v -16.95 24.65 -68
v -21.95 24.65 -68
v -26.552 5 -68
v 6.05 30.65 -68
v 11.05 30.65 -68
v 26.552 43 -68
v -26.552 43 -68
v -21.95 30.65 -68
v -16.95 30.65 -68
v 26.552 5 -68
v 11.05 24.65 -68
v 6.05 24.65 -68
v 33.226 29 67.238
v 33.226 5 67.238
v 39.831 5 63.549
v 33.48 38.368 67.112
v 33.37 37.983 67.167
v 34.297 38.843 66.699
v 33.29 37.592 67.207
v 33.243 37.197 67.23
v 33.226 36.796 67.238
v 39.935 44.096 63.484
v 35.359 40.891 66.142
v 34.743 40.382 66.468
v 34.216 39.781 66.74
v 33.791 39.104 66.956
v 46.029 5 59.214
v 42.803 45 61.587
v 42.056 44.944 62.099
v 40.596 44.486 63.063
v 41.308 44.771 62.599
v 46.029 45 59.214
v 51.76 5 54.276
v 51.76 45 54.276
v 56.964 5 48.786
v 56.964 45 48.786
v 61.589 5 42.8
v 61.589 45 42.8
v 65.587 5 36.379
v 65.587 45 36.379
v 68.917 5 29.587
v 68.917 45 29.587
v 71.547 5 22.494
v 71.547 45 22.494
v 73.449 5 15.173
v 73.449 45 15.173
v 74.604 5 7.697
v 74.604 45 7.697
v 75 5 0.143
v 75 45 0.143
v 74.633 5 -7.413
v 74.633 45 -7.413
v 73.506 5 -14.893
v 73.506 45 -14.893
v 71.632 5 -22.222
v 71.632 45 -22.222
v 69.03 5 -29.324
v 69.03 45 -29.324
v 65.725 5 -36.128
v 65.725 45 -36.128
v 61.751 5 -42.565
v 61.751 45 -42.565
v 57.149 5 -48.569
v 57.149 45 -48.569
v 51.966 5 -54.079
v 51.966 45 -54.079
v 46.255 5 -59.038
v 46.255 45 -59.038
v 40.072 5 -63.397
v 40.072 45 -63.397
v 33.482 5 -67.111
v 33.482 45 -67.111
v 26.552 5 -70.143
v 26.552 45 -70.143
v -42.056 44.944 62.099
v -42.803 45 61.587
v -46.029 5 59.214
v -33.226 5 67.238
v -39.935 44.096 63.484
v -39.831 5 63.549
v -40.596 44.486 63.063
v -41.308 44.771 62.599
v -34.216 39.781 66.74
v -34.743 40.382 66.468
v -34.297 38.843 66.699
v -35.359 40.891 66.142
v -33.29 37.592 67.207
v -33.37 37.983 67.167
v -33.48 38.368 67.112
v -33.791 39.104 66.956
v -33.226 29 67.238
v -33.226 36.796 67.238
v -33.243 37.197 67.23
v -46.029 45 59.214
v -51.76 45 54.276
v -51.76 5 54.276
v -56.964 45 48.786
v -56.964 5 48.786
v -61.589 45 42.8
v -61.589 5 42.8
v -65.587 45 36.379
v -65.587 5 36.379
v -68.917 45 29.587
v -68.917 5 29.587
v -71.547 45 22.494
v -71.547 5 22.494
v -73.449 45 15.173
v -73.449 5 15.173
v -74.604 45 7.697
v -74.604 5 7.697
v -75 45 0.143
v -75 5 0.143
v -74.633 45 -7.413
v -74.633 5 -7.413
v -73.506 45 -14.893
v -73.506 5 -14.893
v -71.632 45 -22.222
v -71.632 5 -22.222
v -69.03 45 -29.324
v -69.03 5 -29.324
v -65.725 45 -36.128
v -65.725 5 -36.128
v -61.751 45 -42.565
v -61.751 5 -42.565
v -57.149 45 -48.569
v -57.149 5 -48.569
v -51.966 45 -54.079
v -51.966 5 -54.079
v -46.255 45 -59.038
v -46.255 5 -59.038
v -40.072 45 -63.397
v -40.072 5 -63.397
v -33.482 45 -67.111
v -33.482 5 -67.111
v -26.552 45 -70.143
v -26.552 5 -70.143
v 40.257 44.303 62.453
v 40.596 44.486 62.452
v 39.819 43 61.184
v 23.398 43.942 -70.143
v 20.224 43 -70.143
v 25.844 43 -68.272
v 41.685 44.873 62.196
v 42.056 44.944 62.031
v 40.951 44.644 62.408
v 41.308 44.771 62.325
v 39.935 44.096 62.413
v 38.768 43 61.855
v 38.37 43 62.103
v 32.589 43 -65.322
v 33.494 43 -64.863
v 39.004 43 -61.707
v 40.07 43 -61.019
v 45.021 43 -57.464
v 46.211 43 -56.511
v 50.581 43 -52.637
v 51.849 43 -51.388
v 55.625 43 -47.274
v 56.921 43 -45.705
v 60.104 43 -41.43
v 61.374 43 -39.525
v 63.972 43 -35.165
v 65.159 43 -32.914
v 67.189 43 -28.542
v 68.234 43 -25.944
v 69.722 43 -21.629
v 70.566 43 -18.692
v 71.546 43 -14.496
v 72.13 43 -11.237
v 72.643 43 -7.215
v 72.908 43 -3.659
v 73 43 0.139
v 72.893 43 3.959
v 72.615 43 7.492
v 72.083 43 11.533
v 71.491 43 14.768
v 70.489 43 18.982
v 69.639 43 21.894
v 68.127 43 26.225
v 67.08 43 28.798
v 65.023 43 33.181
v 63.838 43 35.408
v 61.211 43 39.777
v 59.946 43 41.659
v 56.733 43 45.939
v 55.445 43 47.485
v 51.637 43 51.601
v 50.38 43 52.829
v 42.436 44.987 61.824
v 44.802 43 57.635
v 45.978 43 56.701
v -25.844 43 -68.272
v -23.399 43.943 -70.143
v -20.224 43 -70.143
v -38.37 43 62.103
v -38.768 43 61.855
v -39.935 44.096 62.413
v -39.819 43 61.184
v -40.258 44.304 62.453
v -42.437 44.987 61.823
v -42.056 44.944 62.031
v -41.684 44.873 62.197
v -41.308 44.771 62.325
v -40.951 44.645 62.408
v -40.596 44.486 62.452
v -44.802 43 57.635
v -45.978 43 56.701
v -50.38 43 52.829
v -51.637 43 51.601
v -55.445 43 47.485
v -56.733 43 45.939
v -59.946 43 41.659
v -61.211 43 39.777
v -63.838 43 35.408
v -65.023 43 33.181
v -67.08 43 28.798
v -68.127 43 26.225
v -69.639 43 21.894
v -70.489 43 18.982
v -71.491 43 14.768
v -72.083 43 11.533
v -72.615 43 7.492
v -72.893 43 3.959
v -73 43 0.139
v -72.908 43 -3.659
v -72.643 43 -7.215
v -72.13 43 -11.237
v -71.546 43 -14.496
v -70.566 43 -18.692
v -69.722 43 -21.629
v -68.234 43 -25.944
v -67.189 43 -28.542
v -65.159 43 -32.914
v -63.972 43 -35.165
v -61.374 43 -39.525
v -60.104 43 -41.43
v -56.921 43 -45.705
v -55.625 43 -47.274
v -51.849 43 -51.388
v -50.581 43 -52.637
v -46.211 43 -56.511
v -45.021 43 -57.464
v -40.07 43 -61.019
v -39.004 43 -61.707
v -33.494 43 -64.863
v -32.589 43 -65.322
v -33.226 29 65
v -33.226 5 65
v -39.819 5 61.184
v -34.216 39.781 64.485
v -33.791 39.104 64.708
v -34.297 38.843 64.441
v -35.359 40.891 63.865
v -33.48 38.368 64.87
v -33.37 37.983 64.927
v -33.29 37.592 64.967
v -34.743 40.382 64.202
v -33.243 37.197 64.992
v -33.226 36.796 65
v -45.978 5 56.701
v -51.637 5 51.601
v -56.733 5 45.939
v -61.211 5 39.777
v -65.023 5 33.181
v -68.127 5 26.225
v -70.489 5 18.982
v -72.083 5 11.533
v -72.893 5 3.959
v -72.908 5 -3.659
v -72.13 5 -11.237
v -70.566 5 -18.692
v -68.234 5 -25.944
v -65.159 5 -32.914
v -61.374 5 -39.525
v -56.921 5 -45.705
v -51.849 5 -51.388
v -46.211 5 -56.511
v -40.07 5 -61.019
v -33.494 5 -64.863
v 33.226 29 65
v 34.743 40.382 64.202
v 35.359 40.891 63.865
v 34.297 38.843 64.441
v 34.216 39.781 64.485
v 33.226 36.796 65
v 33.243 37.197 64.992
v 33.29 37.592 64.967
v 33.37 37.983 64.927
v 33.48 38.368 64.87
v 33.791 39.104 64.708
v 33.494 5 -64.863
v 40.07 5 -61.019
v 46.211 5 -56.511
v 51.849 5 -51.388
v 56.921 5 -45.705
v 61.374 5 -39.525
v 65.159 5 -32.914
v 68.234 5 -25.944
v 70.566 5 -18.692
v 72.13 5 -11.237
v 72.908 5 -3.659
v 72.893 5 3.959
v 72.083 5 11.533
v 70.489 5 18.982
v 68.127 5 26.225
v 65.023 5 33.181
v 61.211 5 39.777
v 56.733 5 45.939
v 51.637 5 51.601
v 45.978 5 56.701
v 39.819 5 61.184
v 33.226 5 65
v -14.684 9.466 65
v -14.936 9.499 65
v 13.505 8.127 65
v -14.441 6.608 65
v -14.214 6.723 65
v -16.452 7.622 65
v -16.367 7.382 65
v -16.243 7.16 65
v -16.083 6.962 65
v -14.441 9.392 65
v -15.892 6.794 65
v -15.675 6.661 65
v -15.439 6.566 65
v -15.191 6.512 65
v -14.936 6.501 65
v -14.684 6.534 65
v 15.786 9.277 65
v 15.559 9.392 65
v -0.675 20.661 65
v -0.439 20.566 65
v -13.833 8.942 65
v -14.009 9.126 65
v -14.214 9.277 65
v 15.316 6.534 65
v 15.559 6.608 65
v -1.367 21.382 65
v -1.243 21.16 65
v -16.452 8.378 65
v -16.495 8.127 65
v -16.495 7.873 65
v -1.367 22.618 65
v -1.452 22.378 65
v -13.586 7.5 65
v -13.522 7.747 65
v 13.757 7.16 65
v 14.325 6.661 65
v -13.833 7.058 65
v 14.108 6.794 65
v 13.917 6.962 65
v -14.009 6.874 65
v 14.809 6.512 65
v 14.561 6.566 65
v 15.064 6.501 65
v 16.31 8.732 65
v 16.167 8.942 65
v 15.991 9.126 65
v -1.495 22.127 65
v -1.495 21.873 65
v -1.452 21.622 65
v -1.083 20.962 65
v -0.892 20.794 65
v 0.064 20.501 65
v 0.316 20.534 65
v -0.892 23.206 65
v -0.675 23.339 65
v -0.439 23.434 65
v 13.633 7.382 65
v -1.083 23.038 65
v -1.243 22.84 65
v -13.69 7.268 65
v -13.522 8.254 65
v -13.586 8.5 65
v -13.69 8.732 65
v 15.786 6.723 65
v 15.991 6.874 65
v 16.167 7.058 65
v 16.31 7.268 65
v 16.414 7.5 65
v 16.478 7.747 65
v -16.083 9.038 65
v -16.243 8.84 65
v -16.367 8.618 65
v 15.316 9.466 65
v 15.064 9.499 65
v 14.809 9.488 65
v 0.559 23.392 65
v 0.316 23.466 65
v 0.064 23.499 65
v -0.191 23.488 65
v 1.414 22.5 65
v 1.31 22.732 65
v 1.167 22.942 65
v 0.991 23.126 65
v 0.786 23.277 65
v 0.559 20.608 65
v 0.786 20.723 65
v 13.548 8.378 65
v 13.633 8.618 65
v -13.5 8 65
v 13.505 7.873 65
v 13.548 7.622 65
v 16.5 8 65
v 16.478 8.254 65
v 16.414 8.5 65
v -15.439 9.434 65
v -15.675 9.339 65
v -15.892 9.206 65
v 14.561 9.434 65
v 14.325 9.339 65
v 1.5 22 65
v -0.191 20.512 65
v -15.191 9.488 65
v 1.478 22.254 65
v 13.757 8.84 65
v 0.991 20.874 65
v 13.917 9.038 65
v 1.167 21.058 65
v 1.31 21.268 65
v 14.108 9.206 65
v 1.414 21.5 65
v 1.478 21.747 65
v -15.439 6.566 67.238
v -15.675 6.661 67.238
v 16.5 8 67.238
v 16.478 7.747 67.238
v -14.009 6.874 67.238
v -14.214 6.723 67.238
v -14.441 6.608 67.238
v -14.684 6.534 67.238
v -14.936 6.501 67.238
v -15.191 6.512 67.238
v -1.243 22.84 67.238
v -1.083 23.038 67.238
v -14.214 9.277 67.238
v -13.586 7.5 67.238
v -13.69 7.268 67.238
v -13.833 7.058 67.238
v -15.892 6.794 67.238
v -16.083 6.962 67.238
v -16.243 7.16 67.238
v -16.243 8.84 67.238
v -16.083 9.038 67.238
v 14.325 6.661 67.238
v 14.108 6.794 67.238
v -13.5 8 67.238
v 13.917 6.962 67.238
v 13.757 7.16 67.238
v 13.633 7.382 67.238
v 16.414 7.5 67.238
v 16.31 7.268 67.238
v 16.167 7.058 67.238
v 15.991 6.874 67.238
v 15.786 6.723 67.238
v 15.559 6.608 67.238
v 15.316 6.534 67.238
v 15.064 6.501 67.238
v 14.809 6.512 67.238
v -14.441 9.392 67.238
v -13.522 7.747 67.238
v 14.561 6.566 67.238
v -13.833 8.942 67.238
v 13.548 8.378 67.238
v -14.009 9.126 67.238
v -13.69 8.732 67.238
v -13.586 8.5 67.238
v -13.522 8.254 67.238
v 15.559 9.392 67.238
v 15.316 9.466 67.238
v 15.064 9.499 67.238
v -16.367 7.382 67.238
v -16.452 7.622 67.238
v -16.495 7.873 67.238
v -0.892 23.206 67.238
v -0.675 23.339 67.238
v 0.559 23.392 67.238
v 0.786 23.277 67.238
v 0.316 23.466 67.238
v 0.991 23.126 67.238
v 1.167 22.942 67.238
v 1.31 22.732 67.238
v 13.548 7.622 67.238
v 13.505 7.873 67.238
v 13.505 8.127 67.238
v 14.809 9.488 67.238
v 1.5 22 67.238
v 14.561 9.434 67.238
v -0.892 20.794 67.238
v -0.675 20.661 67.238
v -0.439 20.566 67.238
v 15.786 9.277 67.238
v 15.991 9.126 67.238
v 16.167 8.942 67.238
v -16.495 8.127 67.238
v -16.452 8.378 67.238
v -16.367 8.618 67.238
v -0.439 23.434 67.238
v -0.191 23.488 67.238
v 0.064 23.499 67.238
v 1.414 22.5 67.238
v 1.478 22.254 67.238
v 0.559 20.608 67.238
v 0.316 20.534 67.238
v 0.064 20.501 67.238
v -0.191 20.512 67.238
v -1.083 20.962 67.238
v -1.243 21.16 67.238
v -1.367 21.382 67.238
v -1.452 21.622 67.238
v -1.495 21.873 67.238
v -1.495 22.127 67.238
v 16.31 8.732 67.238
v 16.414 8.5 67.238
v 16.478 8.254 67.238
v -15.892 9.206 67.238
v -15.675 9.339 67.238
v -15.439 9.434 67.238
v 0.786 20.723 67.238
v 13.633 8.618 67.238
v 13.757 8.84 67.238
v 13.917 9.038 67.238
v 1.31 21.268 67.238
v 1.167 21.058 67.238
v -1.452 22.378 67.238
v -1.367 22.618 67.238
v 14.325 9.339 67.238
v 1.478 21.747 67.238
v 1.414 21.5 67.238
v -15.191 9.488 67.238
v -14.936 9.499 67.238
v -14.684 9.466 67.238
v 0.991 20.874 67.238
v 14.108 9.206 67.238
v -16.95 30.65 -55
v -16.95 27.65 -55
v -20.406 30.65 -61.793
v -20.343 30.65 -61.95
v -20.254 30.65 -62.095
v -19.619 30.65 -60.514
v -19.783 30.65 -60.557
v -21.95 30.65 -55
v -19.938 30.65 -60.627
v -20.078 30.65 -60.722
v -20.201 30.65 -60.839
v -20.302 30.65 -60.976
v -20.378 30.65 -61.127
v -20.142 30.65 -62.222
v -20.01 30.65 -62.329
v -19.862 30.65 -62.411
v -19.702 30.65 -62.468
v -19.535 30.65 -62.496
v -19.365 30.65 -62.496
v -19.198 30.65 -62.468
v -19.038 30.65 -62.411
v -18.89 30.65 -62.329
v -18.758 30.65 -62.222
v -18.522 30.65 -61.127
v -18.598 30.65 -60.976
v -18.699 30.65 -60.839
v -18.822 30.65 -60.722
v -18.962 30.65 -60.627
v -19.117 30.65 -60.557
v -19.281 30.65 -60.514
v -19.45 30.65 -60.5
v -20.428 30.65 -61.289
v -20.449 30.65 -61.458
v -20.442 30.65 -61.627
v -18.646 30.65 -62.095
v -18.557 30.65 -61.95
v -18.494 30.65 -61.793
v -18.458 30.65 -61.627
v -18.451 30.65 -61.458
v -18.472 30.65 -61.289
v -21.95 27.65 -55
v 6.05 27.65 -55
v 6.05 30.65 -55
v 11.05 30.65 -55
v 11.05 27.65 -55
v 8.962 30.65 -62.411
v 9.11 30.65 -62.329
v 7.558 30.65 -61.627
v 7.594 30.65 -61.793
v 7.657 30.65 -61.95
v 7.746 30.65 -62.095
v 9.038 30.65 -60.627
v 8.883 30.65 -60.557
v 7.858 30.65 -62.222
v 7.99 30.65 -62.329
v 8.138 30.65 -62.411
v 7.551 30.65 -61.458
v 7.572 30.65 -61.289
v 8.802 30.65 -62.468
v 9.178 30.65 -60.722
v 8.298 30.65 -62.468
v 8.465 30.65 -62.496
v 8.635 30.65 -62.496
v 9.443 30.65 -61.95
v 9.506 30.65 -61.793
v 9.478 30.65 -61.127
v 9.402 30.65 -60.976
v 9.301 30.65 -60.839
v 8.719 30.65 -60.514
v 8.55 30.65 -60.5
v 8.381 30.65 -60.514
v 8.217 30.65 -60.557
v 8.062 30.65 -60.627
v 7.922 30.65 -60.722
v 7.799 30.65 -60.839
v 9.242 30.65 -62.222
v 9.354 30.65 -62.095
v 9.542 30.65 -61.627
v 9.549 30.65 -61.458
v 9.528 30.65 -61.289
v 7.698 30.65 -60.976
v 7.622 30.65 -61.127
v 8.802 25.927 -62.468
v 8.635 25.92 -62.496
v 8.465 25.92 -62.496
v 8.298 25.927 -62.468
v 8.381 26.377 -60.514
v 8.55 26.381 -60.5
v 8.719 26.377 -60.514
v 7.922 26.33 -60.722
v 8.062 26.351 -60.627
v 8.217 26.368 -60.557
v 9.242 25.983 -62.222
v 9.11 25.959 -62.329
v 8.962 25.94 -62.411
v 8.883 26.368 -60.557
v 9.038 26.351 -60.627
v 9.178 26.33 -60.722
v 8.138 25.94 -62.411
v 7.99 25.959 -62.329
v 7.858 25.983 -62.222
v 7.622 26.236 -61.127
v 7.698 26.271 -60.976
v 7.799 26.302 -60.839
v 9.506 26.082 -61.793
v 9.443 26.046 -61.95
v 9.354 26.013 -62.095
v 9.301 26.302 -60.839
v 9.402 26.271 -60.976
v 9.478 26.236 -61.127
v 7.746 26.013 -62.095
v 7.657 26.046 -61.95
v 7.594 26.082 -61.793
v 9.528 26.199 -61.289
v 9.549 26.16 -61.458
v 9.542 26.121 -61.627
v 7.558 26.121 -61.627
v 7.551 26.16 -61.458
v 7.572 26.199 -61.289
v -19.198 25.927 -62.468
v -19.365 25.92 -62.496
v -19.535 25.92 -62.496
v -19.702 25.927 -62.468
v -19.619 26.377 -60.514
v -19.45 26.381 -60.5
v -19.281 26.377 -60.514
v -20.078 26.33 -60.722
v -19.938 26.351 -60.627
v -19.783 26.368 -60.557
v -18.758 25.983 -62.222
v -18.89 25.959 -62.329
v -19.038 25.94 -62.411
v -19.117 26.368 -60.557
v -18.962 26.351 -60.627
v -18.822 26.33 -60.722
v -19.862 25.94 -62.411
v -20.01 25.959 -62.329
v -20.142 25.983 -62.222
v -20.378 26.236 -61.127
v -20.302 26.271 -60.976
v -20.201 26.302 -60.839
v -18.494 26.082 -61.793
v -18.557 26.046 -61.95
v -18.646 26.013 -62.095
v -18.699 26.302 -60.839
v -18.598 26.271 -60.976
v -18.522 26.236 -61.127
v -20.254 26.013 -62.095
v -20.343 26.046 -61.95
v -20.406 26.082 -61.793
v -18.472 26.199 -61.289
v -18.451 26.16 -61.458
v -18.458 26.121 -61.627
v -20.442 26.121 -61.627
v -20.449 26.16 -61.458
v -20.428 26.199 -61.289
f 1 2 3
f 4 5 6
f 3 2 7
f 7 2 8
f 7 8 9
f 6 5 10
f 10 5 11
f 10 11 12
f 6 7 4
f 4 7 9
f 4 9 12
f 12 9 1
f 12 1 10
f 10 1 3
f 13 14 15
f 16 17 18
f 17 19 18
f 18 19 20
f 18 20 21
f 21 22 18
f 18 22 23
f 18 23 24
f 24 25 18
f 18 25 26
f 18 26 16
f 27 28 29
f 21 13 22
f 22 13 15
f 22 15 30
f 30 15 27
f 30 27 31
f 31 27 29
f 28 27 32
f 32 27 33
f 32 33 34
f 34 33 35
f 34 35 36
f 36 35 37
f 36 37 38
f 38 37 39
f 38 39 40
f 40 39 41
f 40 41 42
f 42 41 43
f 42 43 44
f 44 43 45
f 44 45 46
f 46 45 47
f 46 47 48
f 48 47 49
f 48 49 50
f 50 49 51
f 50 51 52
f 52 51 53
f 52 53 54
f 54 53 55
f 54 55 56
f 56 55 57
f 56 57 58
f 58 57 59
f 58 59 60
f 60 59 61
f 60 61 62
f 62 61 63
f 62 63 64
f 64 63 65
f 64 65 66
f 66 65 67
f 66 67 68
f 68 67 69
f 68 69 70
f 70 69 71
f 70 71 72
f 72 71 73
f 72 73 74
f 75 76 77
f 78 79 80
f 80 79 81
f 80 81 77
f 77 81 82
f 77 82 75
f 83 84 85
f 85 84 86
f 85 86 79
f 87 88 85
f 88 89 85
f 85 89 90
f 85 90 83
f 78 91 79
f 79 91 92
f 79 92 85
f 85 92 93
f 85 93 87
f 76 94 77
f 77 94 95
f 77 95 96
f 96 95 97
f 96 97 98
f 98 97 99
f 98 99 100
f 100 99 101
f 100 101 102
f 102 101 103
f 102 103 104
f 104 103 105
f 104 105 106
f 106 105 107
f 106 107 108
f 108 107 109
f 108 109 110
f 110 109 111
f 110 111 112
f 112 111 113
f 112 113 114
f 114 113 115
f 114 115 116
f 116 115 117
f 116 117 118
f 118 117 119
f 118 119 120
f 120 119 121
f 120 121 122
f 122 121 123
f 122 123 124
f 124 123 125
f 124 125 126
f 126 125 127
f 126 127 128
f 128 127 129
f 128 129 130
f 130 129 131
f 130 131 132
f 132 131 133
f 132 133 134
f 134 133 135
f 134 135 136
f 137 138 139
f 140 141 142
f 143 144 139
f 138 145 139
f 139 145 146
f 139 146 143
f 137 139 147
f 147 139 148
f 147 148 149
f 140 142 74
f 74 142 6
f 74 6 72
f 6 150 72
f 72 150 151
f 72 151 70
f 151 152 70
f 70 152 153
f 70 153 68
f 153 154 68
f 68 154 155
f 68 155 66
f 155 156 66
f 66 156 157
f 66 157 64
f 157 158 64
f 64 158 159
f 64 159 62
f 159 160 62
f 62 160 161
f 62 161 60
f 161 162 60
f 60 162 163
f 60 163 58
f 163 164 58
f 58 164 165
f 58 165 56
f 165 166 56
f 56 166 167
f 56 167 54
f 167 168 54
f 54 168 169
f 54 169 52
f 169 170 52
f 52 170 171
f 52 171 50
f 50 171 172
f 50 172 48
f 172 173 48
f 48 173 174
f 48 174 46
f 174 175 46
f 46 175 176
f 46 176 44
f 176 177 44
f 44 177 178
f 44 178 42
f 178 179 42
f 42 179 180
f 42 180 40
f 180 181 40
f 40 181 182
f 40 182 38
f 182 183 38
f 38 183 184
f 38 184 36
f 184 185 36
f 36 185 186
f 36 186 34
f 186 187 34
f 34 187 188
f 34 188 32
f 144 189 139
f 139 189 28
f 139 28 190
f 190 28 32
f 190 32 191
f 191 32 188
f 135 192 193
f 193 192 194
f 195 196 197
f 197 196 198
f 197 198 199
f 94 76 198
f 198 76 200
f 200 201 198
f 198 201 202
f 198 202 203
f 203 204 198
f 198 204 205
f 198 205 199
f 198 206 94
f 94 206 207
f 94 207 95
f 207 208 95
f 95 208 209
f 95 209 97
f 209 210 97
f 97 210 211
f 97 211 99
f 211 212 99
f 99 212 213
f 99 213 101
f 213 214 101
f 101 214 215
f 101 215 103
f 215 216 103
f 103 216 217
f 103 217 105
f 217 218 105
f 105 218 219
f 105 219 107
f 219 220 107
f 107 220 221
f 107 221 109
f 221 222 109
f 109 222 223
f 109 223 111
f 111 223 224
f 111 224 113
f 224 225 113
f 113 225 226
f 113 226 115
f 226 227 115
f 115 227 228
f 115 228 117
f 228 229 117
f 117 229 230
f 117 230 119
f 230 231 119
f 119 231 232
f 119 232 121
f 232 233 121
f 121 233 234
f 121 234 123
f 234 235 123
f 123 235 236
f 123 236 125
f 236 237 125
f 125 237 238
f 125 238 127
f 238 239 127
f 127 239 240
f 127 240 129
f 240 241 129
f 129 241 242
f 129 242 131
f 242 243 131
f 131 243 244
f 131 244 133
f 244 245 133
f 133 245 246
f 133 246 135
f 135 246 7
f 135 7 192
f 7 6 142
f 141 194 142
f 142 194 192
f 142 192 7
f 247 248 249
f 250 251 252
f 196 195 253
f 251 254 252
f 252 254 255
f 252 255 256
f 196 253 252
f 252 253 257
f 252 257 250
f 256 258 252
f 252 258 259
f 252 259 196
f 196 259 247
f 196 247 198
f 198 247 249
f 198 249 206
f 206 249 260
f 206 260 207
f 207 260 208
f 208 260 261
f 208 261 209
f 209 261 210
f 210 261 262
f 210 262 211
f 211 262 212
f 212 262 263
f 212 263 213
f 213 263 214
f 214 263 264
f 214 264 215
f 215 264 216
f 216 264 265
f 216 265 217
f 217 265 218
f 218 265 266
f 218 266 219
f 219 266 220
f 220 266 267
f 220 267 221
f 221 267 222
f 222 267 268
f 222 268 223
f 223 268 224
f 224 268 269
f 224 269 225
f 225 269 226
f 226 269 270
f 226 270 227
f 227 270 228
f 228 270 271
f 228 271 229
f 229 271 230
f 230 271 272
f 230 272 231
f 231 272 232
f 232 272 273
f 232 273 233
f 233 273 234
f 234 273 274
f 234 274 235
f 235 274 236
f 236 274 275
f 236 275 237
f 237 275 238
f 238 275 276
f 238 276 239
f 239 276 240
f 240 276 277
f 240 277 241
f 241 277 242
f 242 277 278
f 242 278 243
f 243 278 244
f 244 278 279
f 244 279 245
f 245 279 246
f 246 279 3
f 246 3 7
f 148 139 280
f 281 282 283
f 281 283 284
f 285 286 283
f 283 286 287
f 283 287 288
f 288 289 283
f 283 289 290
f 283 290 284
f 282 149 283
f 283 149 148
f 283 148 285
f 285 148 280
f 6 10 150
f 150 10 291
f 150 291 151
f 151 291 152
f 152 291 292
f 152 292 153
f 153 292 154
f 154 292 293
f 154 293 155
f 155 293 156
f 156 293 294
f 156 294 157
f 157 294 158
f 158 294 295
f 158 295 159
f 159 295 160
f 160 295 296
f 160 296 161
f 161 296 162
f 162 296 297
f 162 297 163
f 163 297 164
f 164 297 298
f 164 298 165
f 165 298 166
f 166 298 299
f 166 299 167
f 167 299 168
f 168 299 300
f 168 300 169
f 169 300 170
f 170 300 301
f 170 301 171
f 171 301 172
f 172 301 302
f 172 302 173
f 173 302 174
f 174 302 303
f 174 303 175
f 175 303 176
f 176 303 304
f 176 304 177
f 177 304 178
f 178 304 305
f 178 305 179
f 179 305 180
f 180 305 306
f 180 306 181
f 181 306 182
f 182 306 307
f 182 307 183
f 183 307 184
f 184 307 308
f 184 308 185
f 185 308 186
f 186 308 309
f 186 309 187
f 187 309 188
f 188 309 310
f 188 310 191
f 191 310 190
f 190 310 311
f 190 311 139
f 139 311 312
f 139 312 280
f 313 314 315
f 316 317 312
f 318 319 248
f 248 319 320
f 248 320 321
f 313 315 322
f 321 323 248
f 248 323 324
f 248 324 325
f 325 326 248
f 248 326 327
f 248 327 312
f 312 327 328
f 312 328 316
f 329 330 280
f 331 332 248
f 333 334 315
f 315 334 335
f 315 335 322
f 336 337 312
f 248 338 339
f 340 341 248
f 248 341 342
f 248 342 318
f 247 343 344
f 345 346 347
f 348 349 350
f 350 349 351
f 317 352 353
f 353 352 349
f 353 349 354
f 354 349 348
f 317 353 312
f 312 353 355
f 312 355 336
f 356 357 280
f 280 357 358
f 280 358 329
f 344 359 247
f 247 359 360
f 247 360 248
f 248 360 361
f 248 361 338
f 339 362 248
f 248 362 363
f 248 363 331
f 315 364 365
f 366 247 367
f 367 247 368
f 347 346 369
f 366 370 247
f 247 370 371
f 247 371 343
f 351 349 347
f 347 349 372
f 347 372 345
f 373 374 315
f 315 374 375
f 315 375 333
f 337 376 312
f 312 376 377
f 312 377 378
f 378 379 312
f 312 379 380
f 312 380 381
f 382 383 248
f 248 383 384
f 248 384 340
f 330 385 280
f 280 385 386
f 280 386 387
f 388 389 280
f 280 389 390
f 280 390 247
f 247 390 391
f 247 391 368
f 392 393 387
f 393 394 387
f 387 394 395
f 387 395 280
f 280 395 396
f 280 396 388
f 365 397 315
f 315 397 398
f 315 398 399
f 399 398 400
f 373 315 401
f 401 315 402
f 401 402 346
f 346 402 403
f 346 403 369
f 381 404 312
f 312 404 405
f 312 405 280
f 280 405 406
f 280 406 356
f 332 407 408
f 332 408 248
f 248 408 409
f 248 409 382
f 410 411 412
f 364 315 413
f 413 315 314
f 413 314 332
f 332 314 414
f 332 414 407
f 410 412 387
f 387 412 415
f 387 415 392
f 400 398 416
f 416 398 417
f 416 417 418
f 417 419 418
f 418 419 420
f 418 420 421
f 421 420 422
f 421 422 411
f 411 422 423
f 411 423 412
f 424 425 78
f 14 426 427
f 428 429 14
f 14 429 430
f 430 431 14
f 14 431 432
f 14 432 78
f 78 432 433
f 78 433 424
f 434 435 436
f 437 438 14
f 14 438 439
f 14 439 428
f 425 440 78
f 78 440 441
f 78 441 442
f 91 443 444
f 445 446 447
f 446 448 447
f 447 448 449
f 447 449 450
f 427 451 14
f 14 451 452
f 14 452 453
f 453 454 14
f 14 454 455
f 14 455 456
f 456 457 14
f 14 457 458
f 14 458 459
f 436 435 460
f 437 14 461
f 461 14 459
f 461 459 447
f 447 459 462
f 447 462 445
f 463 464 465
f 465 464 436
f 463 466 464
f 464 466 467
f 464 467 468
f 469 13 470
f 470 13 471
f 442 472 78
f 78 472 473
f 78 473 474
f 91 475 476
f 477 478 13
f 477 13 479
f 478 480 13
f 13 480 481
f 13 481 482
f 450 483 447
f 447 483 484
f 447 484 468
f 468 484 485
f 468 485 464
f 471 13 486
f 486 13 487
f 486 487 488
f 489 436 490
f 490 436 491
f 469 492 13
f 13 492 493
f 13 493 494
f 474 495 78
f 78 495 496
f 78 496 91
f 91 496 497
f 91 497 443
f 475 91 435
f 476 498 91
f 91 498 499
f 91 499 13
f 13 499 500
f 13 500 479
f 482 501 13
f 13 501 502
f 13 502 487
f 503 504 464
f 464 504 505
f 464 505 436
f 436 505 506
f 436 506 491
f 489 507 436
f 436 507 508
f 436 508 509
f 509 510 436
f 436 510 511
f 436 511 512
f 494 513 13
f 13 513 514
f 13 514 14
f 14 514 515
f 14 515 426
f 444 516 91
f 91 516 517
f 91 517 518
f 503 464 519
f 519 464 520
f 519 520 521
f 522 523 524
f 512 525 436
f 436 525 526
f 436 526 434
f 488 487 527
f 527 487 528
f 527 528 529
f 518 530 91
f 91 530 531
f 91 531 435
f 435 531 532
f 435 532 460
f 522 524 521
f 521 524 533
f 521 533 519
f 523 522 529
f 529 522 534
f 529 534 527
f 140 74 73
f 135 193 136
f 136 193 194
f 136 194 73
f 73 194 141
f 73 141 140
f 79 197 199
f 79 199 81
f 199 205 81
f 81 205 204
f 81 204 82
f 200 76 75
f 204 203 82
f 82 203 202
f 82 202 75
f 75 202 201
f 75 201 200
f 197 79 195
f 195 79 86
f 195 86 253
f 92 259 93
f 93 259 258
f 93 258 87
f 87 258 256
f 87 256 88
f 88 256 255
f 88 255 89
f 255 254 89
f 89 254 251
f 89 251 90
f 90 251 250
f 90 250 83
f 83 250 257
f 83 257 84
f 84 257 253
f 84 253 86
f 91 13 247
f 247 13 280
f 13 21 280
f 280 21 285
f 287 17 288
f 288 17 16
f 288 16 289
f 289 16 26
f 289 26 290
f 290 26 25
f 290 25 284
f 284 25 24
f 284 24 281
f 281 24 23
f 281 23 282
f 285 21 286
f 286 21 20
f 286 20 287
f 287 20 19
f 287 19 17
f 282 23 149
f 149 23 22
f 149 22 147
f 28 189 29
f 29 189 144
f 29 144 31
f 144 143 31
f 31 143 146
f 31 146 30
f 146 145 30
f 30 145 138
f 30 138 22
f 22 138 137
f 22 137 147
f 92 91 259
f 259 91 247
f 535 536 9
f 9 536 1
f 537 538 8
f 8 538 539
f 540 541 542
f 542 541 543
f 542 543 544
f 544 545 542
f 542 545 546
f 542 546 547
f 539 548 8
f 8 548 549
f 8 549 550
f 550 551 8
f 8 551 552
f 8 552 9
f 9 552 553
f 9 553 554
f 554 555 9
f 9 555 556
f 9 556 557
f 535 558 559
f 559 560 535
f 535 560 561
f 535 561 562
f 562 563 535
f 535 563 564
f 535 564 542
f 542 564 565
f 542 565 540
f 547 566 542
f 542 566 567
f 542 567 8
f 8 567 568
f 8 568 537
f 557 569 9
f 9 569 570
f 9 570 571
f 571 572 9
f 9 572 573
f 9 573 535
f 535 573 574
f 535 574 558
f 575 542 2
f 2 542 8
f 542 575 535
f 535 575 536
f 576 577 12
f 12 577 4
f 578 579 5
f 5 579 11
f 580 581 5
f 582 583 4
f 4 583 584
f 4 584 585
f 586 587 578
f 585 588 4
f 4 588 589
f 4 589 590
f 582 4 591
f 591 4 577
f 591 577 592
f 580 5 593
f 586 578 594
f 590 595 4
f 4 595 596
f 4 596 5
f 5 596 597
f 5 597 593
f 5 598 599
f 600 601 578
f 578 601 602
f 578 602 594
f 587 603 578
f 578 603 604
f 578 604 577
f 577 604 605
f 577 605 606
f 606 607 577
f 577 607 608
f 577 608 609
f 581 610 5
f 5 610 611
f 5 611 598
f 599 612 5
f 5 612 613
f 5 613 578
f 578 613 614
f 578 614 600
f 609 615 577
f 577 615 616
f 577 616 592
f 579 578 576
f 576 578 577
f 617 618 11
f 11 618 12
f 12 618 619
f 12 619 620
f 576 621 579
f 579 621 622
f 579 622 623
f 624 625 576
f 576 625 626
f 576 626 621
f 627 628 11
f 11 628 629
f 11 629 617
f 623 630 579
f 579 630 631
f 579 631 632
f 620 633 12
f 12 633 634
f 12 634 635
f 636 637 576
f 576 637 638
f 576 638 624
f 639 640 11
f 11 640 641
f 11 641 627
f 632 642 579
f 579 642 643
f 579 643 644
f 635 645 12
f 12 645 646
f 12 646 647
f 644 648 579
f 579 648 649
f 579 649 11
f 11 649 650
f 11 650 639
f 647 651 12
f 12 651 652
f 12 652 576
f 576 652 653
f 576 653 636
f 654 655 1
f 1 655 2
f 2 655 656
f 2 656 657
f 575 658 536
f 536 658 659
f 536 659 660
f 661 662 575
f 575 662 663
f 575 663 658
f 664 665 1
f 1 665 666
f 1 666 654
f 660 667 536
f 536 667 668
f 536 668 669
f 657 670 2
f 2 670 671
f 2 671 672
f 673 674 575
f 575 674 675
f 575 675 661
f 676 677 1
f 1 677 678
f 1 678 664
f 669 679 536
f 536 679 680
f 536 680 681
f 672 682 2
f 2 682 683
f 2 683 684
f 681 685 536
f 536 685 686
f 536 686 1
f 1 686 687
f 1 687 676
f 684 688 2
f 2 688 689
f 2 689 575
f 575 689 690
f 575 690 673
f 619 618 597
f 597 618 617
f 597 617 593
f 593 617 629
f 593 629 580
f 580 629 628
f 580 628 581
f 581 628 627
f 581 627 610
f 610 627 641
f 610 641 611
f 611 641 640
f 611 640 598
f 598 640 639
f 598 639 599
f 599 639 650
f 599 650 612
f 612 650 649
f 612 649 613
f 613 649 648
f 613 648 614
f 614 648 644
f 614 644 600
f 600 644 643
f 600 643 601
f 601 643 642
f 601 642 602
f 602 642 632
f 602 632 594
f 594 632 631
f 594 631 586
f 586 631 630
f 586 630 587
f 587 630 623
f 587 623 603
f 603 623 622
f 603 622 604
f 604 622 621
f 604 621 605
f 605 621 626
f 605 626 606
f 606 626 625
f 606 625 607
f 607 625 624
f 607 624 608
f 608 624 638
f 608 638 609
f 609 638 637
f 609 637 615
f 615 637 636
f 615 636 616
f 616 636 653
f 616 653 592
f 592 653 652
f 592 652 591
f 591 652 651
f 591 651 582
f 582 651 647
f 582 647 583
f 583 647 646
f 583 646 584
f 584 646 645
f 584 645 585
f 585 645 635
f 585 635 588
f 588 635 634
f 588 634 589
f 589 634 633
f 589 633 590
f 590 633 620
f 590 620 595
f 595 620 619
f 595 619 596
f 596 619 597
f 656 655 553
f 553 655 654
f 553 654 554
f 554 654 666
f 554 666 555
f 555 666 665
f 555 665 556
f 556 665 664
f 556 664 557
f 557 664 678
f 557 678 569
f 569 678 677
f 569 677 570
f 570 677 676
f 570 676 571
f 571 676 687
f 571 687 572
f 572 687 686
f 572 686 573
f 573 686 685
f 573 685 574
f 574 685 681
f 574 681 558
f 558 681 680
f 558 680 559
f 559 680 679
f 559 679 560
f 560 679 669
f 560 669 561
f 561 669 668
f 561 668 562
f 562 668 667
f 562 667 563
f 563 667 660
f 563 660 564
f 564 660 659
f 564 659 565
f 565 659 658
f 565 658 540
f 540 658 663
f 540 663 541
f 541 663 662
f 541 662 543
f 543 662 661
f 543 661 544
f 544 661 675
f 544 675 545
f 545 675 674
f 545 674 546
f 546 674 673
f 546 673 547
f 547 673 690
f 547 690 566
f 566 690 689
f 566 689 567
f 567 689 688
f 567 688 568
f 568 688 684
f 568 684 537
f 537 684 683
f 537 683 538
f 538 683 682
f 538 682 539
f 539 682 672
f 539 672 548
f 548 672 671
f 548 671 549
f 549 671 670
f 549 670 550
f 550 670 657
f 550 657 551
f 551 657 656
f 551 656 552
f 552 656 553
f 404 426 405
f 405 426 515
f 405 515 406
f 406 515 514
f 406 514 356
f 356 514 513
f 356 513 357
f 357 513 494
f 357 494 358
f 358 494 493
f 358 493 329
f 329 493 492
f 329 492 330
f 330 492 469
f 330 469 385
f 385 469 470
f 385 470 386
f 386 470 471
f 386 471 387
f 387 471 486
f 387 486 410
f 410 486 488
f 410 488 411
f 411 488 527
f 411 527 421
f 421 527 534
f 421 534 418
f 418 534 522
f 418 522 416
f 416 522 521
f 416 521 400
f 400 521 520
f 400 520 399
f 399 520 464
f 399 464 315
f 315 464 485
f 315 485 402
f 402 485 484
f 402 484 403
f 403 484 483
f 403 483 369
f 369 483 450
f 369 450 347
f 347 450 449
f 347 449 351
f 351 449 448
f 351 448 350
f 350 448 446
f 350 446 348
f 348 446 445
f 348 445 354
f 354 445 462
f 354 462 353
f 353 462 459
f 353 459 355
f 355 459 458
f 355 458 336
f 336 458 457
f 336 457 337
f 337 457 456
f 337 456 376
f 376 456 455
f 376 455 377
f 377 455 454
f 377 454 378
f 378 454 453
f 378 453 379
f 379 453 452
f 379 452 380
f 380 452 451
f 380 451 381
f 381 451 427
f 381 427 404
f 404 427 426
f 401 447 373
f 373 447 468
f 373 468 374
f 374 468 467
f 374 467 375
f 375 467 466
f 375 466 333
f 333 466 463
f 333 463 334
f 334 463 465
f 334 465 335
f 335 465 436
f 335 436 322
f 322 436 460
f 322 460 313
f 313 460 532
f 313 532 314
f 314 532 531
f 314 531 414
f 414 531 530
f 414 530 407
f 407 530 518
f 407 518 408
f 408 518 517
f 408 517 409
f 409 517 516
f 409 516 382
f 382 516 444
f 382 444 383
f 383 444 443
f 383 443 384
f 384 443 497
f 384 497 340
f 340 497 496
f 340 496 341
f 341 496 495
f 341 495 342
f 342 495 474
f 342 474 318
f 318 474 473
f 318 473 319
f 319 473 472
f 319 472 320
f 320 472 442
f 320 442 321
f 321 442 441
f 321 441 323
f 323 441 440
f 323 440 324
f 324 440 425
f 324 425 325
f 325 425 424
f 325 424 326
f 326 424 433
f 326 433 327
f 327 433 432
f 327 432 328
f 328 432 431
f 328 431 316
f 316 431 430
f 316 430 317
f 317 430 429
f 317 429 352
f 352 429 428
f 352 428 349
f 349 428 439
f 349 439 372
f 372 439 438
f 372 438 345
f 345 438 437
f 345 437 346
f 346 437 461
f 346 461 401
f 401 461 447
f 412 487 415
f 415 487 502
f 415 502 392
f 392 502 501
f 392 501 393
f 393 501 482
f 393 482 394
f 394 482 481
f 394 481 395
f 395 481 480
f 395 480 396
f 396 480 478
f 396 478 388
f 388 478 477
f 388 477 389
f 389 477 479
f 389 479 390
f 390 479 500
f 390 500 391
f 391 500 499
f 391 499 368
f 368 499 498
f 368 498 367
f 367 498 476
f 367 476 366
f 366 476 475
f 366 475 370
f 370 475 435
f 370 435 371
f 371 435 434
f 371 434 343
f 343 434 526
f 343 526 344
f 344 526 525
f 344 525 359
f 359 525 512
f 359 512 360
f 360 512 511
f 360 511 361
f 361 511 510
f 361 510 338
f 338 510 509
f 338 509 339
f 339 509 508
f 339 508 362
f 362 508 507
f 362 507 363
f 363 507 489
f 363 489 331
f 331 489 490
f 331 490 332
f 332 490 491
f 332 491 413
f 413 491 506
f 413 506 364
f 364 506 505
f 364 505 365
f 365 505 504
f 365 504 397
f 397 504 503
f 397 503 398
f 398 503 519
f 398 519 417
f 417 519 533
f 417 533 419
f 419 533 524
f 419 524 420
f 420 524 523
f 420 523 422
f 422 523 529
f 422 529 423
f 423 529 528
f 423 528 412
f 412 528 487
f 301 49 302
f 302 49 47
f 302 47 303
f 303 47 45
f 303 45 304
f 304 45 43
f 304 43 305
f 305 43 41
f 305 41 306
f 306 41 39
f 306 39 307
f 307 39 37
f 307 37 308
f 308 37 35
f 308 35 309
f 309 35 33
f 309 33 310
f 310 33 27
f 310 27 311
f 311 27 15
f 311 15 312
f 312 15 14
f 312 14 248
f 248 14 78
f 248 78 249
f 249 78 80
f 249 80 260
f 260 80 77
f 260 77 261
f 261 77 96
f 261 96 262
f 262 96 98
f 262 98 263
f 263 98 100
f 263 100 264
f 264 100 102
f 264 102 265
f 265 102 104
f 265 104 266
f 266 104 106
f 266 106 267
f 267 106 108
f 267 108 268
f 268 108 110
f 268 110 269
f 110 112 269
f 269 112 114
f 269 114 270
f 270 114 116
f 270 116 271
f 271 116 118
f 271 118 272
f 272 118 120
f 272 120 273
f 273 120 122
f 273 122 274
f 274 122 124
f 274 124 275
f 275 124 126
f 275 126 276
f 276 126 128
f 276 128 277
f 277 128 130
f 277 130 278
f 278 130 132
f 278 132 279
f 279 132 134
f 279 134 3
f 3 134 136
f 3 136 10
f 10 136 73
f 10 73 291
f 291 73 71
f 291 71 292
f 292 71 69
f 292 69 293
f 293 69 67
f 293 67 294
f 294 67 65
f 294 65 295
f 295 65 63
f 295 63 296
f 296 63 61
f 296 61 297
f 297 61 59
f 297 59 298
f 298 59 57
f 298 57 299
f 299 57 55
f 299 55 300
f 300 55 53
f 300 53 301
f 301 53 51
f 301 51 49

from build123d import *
from OCP.BRepFilletAPI import BRepFilletAPI_MakeChamfer

# Parameters (mm, degrees)
BOSS_EXTRUDE10_DEPTH             = 38
CUT_EXTRUDE7_DEPTH               = 114.357840488
CUT_EXTRUDE7_DEPTH_BACK          = 114.357840488
CUT_EXTRUDE8_REACH               = 164.861
SKETCH44_W                       = 5
SKETCH44_H                       = 3
BOSS_EXTRUDE11_DEPTH             = 13
CHAMFER11_SIZE                   = 3
CHAMFER11_SIZE_2                 = 13
F_2_0_START                      = 25.919230669
F_2_0_2_DIAMETER_HOLE1_OUTLINE_R = 1
F_2_0_2_DIAMETER_HOLE1_DEPTH     = 4.730769331
M4_CLEARANCE_HOLE1_D             = 4.5
F_6_0_6_DIAMETER_HOLE1_D         = 6
FILLET33_R                       = 1
F_3_0_3_DIAMETER_HOLE2_D         = 3
F_3_0_3_DIAMETER_HOLE2_DEPTH     = 2.238381896
SKETCH53_R                       = 75
CUT_EXTRUDE9_DEPTH               = 111.204355799


# Read off the part's stored shape, not the designer's step: Ø2.0 (2) Diameter Hole1
with BuildPart() as part:
    # Sketch34 → Revolve1 (revolve)
    with BuildSketch(Plane.XY, mode=Mode.PRIVATE) as revolve1_sk:
        Polygon((5, 0), (75, 0), (75, 45), (73, 43), (73, 5), (5, 5), align=None)
    revolve(revolve1_sk.sketch.rotate(Axis((0, 0, 0), (0, 1, 0)), 90), axis=Axis((0, 0, 0), (0, 1, 0)))

    # Sketch35 → Boss-Extrude10 (add)
    with BuildSketch(Plane(origin=(0, 5, 0), x_dir=(1, 0, 0), z_dir=(0, 1, 0))):
        with BuildLine():
            Line((-26.551836095, 68), (26.551836095, 68))
            ThreePointArc((26.551836095, 68), (0, 73), (-26.551836095, 68))
        make_face()
        with BuildLine():
            Line((33.226495452, -65), (-33.226495452, -65))
            ThreePointArc((-33.226495452, -65), (0, -73), (33.226495452, -65))
        make_face()
    extrude(amount=BOSS_EXTRUDE10_DEPTH)

    # Sketch36 → Cut-Extrude7 (cut, two sides: drawn at the far end of the back side and taken through both)
    with BuildSketch(Plane(origin=(0, 5, 0), x_dir=(1, 0, 0), z_dir=(0, 1, 0)).offset(-CUT_EXTRUDE7_DEPTH_BACK)):
        with BuildLine():
            Line((-26.551836095, 70.142711667), (26.551836095, 70.142711667))
            ThreePointArc((26.551836095, 70.142711667), (0, 75), (-26.551836095, 70.142711667))
        make_face()
        with BuildLine():
            Line((-33.226495452, -67.238381896), (33.226495452, -67.238381896))
            ThreePointArc((33.226495452, -67.238381896), (0, -75), (-33.226495452, -67.238381896))
        make_face()
    extrude(amount=CUT_EXTRUDE7_DEPTH + CUT_EXTRUDE7_DEPTH_BACK, mode=Mode.SUBTRACT)

    # Sketch43 → Cut-Extrude8 (cut, up to next)
    with BuildSketch(Plane.XY.offset(67.238381896), mode=Mode.PRIVATE) as cut_extrude8_sk1:
        with BuildLine():
            Line((-33.226495452, 29), (33.226495452, 29))
            Line((33.226495452, 29), (33.226495452, 36.795504442))
            ThreePointArc((33.226495452, 36.795504442), (33.791441286, 39.104247508), (35.35861327, 40.891264663))
            Line((35.35861327, 40.891264663), (39.935107214, 44.095760221))
            ThreePointArc((39.935107214, 44.095760221), (41.299460399, 44.768584754), (42.802989396, 45))
            Line((42.802989396, 45), (-42.802989396, 45))
            ThreePointArc((-42.802989396, 45), (-41.299460399, 44.768584754), (-39.935107214, 44.095760221))
            Line((-39.935107214, 44.095760221), (-35.35861327, 40.891264663))
            ThreePointArc((-35.35861327, 40.891264663), (-33.791441286, 39.104247508), (-33.226495452, 36.795504442))
            Line((-33.226495452, 36.795504442), (-33.226495452, 29))
        make_face()
    cut_extrude8_tool1 = extrude(cut_extrude8_sk1.sketch, amount=-CUT_EXTRUDE8_REACH, mode=Mode.PRIVATE) & part.part
    add(cut_extrude8_tool1.solids().sort_by_distance((0, 37.254898, 67.238382))[0], mode=Mode.SUBTRACT)

    # Sketch44 → Boss-Extrude11 (add)
    with BuildSketch(Plane.XY.offset(-68)):
        with Locations((-19.45, 29.15)):
            Rectangle(SKETCH44_W, SKETCH44_H)
        with Locations((8.55, 29.15)):
            Rectangle(SKETCH44_W, SKETCH44_H)
    extrude(amount=BOSS_EXTRUDE11_DEPTH)

    # Chamfer11
    chamfer11_edges_1 = [part.edges().sort_by_distance(p)[0] for p in [
        (8.55, 27.65, -68),
    ]]
    chamfer11_side_1 = [part.faces().sort_by_distance(p)[0] for p in [
        (8.55, 27.59, -68),
    ]]
    chamfer11_edges_2 = [part.edges().sort_by_distance(p)[0] for p in [
        (-19.45, 27.65, -68),
    ]]
    chamfer11_side_2 = [part.faces().sort_by_distance(p)[0] for p in [
        (-19.45, 27.59, -68),
    ]]
    chamfer11 = BRepFilletAPI_MakeChamfer(part.part.solid().wrapped)
    for e in chamfer11_edges_1:
        chamfer11.Add(CHAMFER11_SIZE - 0.0001, CHAMFER11_SIZE_2 - 0.0001, e.wrapped, chamfer11_side_1[0].wrapped)
    for e in chamfer11_edges_2:
        chamfer11.Add(CHAMFER11_SIZE - 0.0001, CHAMFER11_SIZE_2 - 0.0001, e.wrapped, chamfer11_side_2[0].wrapped)
    add(Compound.cast(chamfer11.Shape()), mode=Mode.REPLACE)  # a hair under: the kernel refuses the full size

    # Ø2.0 (2) Diameter Hole1 outline → Ø2.0 (2) Diameter Hole1 (cut)
    with BuildSketch(Plane(origin=(0, 0, 0), x_dir=(1, 0, 0), z_dir=(0, 1, 0)).offset(F_2_0_START)):
        with Locations((8.55, 61.5)):
            Circle(F_2_0_2_DIAMETER_HOLE1_OUTLINE_R)
        with Locations((-19.45, 61.5)):
            Circle(F_2_0_2_DIAMETER_HOLE1_OUTLINE_R)
    extrude(amount=F_2_0_2_DIAMETER_HOLE1_DEPTH, mode=Mode.SUBTRACT)

    # M4 Clearance Hole1 (through all)
    with Locations(Plane(origin=(0, 5, 0), x_dir=(1, 0, 0), z_dir=(0, 1, 0))):
        with Locations((-55, 0), (55, 0), (0, 55), (0, -55)):
            Hole(M4_CLEARANCE_HOLE1_D / 2)

    # Ø6.0 (6) Diameter Hole1 (through all)
    with Locations(Plane(origin=(0, 5, 0), x_dir=(1, 0, 0), z_dir=(0, 1, 0))):
        with Locations((30.0520382, 40.658639918), (40.658639918, 30.0520382), (40.658639918, -30.0520382), (30.0520382, -40.658639918), (-30.0520382, -40.658639918), (-40.658639918, -30.0520382), (-40.658639918, 30.0520382), (-30.0520382, 40.658639918)):
            Hole(F_6_0_6_DIAMETER_HOLE1_D / 2)

    # Fillet33
    fillet33_edges = [part.edges().sort_by_distance(p)[0] for p in [
        (-27.0520382, 5, -40.658639918),
        (-27.0520382, 0, -40.658639918),
        (-37.658639918, 5, -30.0520382),
        (-37.658639918, 0, -30.0520382),
        (-37.658639918, 5, 30.0520382),
        (-37.658639918, 0, 30.0520382),
        (-27.0520382, 5, 40.658639918),
        (-27.0520382, 0, 40.658639918),
        (33.0520382, 5, 40.658639918),
        (33.0520382, 0, 40.658639918),
        (43.658639918, 5, 30.0520382),
        (43.658639918, 0, 30.0520382),
        (43.658639918, 5, -30.0520382),
        (43.658639918, 0, -30.0520382),
        (33.0520382, 5, -40.658639918),
        (33.0520382, 0, -40.658639918),
    ]]
    fillet(fillet33_edges, radius=FILLET33_R)

    # Ø3.0 (3) Diameter Hole2
    with Locations(Plane.XY.offset(67.238381896)):
        with Locations((0, 22), (-15, 8), (15, 8)):
            Hole(F_3_0_3_DIAMETER_HOLE2_D / 2, depth=F_3_0_3_DIAMETER_HOLE2_DEPTH)

    # Sketch53 → Cut-Extrude9 (cut, through all)
    with BuildSketch(Plane(origin=(0, 5, 0), x_dir=(1, 0, 0), z_dir=(0, 1, 0))):
        Circle(SKETCH53_R)
    extrude(amount=-CUT_EXTRUDE9_DEPTH, mode=Mode.SUBTRACT)


solid = part.part
